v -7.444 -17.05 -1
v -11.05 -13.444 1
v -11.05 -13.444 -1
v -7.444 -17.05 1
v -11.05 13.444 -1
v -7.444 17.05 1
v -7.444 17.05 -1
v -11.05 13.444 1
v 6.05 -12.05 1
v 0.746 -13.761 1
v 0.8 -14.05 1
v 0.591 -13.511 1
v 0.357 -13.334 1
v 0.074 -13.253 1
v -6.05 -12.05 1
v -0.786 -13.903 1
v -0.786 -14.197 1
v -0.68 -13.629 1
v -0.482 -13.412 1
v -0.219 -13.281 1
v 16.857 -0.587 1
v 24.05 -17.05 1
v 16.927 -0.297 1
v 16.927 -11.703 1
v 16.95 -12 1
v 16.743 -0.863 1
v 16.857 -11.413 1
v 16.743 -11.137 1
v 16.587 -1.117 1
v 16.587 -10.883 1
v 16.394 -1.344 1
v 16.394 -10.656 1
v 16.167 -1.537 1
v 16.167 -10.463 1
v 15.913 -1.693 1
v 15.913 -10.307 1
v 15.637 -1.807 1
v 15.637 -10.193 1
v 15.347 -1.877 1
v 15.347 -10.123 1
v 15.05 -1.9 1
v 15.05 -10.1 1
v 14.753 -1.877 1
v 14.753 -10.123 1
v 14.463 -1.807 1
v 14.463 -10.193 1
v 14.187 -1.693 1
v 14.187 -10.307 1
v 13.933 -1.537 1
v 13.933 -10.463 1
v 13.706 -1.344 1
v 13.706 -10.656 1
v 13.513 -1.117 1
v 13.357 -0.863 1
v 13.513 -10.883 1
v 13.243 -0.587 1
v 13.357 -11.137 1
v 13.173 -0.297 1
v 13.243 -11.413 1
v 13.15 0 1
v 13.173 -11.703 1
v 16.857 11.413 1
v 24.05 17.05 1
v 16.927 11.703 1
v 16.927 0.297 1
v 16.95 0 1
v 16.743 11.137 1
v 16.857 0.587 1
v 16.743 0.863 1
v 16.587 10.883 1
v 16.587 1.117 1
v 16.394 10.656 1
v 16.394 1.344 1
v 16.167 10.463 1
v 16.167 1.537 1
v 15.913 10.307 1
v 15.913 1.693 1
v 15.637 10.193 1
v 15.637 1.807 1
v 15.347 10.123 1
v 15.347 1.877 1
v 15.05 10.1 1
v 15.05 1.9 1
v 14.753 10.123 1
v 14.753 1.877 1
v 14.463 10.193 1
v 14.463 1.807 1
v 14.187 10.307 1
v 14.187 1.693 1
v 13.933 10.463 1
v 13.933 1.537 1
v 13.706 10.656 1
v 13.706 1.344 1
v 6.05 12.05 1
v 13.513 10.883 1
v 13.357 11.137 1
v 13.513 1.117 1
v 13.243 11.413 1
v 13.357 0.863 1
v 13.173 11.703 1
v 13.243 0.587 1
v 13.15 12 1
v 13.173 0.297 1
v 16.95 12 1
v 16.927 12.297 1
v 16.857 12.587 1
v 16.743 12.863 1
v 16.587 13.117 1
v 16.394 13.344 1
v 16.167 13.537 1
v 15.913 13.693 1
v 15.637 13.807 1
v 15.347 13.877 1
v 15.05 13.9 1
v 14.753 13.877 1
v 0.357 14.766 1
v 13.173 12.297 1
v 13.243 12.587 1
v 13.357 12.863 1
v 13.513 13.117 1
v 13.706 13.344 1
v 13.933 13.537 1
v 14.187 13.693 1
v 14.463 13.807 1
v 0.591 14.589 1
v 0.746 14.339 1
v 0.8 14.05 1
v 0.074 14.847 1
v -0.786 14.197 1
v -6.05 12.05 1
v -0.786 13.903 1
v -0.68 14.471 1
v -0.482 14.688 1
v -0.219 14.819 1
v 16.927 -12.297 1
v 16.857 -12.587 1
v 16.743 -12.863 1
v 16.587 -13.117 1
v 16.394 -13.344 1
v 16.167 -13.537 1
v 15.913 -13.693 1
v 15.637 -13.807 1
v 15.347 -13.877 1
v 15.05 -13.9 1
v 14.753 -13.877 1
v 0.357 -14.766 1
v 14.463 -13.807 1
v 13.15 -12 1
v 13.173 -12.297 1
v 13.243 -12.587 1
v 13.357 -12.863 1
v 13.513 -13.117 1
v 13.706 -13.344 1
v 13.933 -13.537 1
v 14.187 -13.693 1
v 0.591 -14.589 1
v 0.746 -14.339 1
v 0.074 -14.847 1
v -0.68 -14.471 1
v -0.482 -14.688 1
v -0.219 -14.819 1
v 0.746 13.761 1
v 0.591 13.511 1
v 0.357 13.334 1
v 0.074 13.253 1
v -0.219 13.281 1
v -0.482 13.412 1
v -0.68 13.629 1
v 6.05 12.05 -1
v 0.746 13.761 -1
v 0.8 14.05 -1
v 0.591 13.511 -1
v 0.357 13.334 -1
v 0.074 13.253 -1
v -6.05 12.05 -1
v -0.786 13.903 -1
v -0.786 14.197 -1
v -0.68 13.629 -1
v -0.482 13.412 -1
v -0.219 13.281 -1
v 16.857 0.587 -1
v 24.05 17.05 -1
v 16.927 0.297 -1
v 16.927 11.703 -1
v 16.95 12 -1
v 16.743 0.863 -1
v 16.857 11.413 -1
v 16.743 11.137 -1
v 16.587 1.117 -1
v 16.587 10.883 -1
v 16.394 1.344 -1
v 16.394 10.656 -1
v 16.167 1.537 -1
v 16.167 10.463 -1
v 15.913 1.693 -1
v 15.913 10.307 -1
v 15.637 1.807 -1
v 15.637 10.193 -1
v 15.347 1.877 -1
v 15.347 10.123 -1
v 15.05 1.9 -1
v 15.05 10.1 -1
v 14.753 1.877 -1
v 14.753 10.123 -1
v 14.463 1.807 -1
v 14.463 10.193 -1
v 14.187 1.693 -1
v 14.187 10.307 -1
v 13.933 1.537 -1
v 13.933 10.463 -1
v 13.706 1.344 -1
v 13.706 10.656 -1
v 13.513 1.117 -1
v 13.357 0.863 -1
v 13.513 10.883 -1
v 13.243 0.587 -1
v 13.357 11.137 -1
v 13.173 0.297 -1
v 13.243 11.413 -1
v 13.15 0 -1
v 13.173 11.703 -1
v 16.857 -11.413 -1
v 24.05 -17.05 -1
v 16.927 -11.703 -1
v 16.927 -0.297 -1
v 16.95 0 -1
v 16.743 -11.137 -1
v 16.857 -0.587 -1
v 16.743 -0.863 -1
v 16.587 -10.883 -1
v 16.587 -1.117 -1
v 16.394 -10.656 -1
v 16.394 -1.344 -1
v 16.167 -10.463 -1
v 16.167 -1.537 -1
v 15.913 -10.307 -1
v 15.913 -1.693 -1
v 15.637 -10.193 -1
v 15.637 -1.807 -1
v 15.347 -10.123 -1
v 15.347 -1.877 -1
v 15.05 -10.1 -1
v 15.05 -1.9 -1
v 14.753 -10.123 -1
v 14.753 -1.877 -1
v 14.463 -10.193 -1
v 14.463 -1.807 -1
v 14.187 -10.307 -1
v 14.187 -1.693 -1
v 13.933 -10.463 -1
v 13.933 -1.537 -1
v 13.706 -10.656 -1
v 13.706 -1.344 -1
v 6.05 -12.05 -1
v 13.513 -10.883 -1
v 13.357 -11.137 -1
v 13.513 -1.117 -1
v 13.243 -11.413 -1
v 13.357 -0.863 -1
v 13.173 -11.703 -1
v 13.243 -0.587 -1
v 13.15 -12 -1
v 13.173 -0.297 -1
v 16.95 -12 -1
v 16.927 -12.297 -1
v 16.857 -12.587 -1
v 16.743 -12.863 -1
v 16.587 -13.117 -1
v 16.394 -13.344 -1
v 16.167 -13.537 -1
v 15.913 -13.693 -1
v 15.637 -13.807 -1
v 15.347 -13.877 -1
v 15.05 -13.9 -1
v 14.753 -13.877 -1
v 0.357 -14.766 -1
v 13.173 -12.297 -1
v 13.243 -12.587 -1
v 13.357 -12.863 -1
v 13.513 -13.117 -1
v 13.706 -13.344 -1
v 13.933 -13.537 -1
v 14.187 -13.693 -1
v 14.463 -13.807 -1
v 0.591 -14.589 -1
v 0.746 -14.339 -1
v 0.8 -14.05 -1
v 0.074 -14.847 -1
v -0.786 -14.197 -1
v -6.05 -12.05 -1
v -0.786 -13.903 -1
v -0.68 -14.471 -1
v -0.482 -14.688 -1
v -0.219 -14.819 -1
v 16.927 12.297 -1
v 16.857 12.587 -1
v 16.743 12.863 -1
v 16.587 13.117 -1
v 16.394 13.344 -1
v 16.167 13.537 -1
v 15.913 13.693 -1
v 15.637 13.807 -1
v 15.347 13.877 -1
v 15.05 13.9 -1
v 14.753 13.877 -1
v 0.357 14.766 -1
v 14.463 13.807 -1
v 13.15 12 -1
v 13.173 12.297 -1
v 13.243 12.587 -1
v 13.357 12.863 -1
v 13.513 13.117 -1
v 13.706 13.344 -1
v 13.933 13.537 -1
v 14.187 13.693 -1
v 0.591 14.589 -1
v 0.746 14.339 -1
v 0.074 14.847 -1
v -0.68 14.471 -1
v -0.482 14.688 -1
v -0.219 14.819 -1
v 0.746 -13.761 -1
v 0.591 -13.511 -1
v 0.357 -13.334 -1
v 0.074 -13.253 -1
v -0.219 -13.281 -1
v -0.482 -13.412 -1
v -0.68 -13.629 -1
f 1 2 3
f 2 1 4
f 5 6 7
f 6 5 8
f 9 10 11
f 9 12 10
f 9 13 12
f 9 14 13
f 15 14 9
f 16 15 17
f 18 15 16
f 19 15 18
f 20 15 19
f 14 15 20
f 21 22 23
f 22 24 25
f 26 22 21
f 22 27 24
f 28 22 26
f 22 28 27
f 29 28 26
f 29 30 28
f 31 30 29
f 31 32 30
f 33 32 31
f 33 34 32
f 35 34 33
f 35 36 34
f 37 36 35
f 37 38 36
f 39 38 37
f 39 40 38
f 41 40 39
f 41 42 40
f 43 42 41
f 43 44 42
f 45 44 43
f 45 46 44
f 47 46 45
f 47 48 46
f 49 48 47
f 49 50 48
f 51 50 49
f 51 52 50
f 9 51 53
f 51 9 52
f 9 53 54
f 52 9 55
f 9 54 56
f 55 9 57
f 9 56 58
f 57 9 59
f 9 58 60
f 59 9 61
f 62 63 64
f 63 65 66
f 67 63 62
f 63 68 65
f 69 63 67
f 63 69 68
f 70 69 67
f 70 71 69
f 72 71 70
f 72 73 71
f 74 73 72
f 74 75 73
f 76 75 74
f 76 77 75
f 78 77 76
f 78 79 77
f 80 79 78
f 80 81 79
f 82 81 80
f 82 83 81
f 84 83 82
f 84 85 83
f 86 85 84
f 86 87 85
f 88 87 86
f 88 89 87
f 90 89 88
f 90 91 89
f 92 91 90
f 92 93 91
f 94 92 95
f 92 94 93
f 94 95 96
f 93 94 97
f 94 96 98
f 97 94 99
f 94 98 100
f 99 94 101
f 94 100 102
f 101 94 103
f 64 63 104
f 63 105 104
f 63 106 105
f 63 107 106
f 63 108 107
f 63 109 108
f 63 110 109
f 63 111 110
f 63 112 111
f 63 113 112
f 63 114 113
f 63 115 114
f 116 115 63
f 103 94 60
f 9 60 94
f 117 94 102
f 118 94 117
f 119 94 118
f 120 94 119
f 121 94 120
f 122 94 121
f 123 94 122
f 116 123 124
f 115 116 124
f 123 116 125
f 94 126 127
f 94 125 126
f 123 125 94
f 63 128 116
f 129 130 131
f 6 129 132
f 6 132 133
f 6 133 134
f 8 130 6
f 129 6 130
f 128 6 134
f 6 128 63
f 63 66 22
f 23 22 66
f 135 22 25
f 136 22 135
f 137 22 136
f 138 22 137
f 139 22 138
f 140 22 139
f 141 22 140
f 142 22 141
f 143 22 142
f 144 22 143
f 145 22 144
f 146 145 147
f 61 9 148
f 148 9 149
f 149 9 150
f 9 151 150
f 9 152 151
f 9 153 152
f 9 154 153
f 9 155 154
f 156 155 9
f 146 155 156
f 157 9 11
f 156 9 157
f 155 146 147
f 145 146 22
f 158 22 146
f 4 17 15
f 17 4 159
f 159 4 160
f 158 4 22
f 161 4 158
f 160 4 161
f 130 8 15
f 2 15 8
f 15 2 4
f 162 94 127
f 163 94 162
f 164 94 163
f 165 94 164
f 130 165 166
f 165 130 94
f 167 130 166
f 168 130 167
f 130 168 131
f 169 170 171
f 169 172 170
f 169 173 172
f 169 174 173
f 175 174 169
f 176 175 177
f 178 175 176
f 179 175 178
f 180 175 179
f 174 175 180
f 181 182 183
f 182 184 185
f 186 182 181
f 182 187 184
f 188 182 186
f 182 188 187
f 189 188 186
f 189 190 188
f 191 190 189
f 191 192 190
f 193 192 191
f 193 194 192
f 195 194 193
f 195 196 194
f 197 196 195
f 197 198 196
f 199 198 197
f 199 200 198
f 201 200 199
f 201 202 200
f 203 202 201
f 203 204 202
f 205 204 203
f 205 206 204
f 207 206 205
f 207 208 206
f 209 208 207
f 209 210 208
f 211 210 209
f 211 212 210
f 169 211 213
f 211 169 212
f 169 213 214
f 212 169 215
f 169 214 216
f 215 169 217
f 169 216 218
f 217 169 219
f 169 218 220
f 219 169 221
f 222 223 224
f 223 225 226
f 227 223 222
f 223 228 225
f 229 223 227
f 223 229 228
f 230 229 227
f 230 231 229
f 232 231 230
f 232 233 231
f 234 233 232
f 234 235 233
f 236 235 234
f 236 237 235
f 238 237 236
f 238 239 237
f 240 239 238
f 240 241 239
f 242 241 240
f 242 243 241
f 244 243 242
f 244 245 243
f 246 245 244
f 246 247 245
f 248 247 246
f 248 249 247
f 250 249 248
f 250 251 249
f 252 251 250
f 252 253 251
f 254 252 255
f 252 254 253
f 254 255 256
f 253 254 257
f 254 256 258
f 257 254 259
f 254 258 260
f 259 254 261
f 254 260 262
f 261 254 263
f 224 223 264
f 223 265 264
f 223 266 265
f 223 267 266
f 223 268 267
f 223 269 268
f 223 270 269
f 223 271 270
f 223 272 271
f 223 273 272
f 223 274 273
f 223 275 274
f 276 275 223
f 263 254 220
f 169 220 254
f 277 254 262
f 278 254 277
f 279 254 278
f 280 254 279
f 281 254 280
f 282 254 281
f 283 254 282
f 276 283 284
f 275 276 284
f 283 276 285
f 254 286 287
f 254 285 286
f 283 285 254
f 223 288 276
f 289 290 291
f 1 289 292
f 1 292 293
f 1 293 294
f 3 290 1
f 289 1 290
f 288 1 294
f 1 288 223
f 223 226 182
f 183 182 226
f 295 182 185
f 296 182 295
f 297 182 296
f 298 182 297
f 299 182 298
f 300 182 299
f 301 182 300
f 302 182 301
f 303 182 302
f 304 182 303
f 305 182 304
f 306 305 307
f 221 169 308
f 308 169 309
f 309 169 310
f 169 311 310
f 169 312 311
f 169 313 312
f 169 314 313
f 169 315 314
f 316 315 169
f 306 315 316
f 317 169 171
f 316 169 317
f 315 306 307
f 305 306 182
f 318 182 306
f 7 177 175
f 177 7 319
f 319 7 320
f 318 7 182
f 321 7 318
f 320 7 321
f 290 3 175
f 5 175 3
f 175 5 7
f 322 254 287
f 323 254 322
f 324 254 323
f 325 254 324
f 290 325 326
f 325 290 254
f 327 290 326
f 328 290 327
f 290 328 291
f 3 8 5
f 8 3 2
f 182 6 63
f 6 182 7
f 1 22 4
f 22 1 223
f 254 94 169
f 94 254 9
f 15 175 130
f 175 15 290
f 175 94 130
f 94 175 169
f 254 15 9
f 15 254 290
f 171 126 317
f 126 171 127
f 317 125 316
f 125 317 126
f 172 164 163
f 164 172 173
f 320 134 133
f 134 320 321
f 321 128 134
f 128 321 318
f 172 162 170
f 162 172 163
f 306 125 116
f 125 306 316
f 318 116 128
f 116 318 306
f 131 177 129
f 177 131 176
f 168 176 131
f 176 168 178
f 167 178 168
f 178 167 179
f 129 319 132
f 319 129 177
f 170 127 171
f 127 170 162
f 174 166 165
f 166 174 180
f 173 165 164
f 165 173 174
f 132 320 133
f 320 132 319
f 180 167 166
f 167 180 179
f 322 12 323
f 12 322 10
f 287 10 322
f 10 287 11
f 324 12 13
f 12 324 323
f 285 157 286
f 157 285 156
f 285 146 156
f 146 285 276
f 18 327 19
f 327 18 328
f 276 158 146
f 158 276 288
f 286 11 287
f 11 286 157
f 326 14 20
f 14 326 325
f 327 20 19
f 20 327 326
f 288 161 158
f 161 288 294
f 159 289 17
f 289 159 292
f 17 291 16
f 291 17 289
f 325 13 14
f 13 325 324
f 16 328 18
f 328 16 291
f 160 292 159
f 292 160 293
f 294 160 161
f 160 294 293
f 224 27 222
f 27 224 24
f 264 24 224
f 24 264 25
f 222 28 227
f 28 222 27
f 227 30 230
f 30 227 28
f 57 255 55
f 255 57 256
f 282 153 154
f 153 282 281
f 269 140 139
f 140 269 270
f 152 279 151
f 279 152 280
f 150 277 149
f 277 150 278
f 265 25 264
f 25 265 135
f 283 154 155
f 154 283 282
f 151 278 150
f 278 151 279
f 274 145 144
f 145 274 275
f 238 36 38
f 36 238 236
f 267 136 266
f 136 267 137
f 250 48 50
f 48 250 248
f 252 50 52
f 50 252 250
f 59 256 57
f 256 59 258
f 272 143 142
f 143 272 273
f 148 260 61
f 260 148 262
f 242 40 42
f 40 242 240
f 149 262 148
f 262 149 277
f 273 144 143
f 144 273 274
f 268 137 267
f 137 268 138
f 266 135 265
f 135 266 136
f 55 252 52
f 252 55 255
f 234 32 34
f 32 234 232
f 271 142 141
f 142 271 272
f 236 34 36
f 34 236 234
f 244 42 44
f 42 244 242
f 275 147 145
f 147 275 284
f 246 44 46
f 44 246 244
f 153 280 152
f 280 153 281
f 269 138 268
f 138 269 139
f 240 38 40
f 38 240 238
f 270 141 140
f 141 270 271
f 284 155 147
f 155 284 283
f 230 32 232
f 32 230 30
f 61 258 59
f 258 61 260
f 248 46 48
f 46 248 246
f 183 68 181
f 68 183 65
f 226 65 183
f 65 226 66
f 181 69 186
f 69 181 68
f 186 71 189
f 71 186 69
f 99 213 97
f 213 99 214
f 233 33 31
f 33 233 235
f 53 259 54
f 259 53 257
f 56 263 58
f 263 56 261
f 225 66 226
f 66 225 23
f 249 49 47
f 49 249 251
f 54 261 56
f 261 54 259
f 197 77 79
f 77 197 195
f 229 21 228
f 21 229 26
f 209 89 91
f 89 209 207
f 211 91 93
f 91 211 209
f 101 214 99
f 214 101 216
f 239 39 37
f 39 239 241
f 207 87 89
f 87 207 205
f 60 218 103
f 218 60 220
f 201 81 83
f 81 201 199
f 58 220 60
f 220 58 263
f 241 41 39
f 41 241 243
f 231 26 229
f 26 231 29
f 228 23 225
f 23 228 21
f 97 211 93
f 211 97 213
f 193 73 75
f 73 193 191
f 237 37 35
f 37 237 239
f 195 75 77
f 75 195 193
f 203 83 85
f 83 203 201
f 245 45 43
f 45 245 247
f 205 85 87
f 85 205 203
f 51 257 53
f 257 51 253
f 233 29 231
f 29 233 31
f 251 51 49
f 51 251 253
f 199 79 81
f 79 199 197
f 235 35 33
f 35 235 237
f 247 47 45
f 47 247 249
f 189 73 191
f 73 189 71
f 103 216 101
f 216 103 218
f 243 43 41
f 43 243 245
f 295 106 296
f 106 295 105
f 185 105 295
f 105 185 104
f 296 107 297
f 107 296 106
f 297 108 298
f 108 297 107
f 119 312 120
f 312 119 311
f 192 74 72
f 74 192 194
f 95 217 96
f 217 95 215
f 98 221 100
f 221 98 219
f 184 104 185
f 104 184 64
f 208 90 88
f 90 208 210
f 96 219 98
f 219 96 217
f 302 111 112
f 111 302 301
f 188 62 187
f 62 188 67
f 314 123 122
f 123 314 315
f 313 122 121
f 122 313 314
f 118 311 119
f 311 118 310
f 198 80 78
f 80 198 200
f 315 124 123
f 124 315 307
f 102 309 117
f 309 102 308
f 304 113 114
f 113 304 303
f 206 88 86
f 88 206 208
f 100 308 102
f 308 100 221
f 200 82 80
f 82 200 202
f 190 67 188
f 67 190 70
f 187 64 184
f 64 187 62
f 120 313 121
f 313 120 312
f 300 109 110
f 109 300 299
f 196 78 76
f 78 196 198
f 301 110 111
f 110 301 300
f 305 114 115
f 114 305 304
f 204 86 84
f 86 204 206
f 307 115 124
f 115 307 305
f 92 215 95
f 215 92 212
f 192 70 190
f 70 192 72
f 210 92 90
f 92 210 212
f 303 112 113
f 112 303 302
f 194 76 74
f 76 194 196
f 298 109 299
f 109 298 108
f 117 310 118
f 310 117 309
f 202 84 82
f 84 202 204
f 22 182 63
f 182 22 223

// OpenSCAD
height = 2.0;
servo_w = 12.1;
servo_l = 24.1;
side = 5.0;
servo_ow = servo_w + side*2;
servo_ol = servo_l + side*2;
screw_rad = 0.8;
screw_off = 2.0;
mount_rad = 1.9;
mount_wide = 15 + side - 2;

module servo(h){
  difference(){
    cube(size=[servo_ow, servo_ol, h], center=true);
    cube(size=[servo_w, servo_l, h+.01], center=true);
    for(x=[-servo_ow/2, servo_ow/2]) 
      for(y=[-servo_ol/2, servo_ol/2])
        translate([x, y, 0]) 
          rotate([0,0,45]) 
            cube(size=[side+0.1, side+0.1, h+.01], center=true);
    translate([0, servo_l/2+screw_off, 0]) 
      cylinder(r=screw_rad, h=h+.01,center=true);
    translate([0, -(servo_l/2+screw_off), 0]) 
      cylinder(r=screw_rad, h=h+.01,center=true);
  }
}


$fa = 8;
$fs = 0.3;

servo(h=height);
difference(){
  translate([servo_ow/2 + mount_wide/2 - side, 0, 0])
    cube(size=[mount_wide, servo_ol, height], center=true);
  for(y=[-12, 0, 12]) 
      translate([servo_w/2 + mount_wide/2, y, -.01]) 
        cylinder(r=mount_rad, h=height*2+.1, center=true);
}
